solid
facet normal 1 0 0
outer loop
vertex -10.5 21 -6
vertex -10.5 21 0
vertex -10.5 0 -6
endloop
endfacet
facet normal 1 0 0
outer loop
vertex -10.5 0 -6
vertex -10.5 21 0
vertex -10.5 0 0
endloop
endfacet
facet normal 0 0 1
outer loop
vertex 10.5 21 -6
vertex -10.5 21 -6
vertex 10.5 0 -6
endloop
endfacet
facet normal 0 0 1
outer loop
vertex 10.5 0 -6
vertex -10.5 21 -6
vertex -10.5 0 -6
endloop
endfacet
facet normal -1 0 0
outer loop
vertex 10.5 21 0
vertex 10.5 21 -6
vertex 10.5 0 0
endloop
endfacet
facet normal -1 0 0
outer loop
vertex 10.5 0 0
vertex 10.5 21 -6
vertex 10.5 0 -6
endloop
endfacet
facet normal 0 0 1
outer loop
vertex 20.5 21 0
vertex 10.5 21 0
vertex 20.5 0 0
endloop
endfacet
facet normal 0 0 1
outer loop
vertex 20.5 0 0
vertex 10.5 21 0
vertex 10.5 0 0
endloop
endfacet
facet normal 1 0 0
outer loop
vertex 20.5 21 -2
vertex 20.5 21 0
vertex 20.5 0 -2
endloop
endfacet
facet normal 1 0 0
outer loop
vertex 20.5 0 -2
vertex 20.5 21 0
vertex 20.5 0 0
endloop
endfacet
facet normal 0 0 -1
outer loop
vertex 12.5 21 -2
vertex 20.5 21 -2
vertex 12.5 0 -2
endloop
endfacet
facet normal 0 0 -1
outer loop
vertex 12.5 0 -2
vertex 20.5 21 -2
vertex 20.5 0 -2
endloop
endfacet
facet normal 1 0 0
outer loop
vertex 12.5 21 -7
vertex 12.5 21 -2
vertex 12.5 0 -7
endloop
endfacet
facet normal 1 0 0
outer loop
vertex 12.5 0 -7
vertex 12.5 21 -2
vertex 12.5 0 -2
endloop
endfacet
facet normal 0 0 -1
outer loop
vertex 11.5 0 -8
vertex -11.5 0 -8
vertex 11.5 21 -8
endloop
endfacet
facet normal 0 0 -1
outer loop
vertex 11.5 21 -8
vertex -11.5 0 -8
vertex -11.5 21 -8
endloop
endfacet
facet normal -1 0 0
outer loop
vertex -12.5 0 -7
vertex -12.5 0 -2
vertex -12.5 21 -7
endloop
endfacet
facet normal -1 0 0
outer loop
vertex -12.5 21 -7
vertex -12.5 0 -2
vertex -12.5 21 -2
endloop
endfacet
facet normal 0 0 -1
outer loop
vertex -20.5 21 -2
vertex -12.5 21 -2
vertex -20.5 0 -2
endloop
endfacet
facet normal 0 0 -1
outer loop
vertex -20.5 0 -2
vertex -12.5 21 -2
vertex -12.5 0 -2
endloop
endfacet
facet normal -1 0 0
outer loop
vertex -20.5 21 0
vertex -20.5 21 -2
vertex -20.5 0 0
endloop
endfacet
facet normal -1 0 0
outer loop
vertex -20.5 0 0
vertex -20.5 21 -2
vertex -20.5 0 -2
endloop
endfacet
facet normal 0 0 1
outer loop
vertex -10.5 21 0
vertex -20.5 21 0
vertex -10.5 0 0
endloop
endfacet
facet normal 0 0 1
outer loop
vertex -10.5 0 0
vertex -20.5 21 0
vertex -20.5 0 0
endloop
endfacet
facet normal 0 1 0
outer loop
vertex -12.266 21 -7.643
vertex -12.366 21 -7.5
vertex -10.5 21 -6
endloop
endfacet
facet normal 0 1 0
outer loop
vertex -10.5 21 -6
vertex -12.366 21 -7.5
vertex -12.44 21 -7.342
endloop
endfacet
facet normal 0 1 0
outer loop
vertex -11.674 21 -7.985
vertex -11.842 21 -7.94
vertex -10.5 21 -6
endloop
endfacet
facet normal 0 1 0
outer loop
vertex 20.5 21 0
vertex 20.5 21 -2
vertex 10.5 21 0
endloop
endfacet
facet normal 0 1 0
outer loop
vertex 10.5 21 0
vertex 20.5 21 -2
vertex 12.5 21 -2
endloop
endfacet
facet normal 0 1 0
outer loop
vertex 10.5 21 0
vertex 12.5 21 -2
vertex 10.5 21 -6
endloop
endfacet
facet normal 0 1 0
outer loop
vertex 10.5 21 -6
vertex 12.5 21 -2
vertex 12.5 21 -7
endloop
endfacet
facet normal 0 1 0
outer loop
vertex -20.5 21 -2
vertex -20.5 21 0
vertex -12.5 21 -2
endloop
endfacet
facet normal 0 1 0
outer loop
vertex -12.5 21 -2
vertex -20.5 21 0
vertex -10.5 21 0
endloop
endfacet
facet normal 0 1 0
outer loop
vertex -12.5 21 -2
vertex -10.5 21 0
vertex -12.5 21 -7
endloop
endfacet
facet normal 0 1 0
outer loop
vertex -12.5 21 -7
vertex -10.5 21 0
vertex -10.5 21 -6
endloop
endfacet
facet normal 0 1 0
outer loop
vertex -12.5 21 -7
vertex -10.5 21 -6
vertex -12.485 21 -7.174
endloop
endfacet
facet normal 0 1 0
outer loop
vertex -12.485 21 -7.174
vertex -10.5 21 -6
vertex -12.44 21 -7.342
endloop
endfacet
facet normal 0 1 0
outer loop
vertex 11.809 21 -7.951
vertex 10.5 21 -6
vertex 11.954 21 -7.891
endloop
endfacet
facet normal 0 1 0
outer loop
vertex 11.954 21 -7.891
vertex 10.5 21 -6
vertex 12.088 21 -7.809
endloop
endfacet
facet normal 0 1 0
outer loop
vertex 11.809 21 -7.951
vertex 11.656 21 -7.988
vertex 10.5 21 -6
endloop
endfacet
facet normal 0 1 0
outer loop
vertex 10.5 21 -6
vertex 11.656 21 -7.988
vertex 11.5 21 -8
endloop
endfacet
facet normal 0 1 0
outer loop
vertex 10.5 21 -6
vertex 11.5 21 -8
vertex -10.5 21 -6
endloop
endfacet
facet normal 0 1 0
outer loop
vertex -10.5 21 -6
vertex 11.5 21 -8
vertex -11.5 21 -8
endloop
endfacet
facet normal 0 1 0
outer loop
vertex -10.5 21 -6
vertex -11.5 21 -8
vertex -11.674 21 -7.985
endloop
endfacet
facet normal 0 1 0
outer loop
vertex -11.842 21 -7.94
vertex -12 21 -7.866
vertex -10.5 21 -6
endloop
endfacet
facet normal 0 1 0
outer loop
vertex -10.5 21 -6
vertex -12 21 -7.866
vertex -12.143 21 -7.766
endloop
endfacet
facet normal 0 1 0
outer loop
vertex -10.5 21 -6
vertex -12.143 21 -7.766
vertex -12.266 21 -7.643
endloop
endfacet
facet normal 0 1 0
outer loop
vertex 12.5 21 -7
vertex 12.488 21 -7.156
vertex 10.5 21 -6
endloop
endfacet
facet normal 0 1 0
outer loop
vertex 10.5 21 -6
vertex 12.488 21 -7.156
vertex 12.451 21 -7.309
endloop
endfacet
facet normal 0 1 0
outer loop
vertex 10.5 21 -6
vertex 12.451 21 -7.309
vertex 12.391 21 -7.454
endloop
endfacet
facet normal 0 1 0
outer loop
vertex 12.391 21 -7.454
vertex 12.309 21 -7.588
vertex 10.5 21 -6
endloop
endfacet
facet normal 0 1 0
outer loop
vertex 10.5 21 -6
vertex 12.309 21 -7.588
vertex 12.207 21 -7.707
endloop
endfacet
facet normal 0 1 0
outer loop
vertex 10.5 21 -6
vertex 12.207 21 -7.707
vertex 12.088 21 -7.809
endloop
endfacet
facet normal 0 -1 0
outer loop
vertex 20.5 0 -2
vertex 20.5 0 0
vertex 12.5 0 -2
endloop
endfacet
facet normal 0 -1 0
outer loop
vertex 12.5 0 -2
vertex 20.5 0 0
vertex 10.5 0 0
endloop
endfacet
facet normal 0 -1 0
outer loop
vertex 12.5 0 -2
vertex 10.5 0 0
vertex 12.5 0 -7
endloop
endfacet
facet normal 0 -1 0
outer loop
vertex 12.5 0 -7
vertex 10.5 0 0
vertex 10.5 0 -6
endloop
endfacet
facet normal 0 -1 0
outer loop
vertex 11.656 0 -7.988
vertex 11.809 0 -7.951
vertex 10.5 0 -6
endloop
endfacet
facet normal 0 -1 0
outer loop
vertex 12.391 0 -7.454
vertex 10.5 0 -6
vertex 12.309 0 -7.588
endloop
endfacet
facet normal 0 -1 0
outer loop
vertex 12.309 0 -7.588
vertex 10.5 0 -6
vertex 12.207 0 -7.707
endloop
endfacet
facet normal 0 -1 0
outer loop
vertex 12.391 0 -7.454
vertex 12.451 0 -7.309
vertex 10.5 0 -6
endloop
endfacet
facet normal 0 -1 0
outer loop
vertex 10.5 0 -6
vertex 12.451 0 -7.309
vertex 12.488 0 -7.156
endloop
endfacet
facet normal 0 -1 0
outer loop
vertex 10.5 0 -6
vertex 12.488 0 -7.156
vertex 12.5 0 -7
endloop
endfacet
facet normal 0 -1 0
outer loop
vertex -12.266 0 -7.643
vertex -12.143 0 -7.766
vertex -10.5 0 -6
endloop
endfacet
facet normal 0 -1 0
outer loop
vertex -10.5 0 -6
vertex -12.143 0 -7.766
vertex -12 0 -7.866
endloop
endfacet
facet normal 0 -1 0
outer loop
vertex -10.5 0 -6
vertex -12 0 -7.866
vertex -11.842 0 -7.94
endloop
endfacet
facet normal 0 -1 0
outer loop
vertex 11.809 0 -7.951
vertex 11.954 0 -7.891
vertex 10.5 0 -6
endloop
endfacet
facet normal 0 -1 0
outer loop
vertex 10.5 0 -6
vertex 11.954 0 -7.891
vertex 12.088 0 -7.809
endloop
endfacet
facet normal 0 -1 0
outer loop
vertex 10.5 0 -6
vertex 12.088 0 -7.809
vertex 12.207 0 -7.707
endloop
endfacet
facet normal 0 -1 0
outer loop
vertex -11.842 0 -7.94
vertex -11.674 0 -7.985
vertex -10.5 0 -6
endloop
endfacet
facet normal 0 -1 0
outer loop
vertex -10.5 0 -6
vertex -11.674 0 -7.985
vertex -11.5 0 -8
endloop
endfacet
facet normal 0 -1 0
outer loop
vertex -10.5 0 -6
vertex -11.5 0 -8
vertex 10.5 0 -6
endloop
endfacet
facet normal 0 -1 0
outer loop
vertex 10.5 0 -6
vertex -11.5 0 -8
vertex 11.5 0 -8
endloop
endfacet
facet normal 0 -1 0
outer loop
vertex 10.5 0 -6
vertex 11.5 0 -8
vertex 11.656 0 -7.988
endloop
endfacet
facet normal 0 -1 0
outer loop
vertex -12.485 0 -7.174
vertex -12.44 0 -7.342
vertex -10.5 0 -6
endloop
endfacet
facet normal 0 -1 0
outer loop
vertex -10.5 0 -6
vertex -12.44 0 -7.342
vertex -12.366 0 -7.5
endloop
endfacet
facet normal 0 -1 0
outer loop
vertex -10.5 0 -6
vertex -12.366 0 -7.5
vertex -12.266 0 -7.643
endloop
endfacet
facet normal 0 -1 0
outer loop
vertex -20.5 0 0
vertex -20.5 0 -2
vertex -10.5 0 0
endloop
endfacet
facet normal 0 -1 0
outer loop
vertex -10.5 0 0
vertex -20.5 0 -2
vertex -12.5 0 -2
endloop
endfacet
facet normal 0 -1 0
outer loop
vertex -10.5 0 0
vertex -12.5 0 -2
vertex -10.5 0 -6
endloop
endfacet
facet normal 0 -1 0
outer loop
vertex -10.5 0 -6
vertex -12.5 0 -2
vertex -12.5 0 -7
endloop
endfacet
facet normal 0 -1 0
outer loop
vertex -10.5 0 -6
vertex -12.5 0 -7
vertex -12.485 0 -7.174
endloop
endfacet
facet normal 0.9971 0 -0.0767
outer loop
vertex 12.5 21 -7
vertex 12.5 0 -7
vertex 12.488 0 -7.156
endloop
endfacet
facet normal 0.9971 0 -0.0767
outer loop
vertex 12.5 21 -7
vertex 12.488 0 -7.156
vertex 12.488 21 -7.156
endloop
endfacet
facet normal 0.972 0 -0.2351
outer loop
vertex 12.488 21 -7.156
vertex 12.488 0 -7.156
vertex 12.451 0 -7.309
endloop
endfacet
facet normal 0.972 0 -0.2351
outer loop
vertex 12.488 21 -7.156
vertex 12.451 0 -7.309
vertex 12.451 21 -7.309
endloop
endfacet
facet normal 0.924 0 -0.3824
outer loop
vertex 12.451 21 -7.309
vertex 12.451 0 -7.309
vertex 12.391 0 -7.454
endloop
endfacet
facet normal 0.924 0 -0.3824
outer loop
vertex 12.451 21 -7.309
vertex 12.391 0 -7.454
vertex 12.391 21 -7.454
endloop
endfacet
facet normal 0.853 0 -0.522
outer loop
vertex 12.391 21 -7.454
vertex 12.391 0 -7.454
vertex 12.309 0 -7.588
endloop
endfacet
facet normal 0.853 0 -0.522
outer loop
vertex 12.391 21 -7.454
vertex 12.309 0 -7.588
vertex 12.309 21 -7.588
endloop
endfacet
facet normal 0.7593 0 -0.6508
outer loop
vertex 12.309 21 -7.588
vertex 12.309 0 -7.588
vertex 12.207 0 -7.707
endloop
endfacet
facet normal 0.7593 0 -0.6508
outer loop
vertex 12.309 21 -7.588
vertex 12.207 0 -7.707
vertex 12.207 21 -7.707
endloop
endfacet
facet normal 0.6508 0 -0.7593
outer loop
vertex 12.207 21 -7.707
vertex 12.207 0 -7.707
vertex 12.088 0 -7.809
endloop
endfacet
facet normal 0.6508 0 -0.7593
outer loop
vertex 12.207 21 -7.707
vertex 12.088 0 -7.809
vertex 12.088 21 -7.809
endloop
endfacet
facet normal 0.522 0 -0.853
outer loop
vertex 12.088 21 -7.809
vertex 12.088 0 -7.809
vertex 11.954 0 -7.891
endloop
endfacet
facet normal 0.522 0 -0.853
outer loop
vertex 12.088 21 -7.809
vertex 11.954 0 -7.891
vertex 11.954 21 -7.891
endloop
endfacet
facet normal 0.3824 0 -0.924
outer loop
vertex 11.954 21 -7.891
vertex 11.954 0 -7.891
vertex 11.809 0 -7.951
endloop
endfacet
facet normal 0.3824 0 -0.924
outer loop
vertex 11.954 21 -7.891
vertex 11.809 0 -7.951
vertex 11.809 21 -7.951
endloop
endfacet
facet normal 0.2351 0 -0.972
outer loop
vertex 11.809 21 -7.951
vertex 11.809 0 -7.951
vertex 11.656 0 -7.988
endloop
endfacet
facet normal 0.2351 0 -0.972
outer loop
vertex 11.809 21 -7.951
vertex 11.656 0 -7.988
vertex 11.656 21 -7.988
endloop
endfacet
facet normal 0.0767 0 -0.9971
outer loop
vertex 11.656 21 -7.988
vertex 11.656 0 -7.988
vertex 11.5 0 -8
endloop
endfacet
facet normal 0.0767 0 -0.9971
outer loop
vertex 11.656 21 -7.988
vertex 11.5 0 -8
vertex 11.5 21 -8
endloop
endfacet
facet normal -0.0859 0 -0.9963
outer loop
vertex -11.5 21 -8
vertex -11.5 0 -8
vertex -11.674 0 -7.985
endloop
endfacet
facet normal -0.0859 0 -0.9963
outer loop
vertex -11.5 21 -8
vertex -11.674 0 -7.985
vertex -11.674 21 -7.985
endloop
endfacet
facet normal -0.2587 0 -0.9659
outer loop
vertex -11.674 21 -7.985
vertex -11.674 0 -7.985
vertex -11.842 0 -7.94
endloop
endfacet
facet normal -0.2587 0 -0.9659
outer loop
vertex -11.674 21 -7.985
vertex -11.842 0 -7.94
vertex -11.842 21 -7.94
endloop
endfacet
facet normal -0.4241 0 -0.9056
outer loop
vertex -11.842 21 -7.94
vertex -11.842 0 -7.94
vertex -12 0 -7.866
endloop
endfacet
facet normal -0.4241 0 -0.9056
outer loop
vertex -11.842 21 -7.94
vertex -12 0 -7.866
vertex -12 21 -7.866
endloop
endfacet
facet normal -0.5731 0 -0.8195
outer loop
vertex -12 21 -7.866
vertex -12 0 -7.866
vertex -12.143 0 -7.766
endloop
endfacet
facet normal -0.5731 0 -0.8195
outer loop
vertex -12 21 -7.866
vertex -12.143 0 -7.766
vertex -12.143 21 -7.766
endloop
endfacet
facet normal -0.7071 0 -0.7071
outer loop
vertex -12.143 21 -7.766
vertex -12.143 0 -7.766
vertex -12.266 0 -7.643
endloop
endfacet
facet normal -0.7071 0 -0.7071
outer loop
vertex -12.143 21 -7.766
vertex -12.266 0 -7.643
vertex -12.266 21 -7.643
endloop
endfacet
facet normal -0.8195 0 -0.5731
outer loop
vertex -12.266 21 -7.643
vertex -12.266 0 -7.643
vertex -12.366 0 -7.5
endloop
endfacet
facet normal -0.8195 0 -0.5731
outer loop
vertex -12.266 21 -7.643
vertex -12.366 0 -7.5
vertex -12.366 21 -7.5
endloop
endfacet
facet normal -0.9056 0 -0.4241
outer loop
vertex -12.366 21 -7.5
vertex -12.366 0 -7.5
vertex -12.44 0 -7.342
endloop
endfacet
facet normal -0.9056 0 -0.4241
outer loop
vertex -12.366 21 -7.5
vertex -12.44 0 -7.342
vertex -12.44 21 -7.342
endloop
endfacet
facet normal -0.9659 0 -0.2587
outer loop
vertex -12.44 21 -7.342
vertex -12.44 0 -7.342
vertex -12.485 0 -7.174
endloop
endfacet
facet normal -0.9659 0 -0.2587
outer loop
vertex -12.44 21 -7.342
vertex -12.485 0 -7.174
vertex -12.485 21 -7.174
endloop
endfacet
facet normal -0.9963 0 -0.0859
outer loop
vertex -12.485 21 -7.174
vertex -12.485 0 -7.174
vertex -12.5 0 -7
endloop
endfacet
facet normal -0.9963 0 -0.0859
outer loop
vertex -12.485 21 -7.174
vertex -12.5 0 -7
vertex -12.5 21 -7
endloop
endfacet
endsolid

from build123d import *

# Parameters (mm, degrees)
BOSS_EXTRUDE1_DEPTH = 21
FILLET1_R           = 1


with BuildPart() as part:
    # Sketch1 → Boss-Extrude1 (new body)
    with BuildSketch(Plane(origin=(0, 0, 0), x_dir=(1, 0, 0), z_dir=(0, 1, 0))):
        Polygon((-10.5, 0), (-20.5, 0), (-20.5, 2), (-12.5, 2), (-12.5, 8), (12.5, 8), (12.5, 2), (20.5, 2), (20.5, 0), (10.5, 0), (10.5, 6), (-10.5, 6), align=None)
    extrude(amount=BOSS_EXTRUDE1_DEPTH)

    # Fillet1
    fillet1_edges = [part.edges().sort_by_distance(p)[0] for p in [
        (-12.5, 10.5, -8),
        (12.5, 10.5, -8),
    ]]
    fillet(fillet1_edges, radius=FILLET1_R)


solid = part.part
